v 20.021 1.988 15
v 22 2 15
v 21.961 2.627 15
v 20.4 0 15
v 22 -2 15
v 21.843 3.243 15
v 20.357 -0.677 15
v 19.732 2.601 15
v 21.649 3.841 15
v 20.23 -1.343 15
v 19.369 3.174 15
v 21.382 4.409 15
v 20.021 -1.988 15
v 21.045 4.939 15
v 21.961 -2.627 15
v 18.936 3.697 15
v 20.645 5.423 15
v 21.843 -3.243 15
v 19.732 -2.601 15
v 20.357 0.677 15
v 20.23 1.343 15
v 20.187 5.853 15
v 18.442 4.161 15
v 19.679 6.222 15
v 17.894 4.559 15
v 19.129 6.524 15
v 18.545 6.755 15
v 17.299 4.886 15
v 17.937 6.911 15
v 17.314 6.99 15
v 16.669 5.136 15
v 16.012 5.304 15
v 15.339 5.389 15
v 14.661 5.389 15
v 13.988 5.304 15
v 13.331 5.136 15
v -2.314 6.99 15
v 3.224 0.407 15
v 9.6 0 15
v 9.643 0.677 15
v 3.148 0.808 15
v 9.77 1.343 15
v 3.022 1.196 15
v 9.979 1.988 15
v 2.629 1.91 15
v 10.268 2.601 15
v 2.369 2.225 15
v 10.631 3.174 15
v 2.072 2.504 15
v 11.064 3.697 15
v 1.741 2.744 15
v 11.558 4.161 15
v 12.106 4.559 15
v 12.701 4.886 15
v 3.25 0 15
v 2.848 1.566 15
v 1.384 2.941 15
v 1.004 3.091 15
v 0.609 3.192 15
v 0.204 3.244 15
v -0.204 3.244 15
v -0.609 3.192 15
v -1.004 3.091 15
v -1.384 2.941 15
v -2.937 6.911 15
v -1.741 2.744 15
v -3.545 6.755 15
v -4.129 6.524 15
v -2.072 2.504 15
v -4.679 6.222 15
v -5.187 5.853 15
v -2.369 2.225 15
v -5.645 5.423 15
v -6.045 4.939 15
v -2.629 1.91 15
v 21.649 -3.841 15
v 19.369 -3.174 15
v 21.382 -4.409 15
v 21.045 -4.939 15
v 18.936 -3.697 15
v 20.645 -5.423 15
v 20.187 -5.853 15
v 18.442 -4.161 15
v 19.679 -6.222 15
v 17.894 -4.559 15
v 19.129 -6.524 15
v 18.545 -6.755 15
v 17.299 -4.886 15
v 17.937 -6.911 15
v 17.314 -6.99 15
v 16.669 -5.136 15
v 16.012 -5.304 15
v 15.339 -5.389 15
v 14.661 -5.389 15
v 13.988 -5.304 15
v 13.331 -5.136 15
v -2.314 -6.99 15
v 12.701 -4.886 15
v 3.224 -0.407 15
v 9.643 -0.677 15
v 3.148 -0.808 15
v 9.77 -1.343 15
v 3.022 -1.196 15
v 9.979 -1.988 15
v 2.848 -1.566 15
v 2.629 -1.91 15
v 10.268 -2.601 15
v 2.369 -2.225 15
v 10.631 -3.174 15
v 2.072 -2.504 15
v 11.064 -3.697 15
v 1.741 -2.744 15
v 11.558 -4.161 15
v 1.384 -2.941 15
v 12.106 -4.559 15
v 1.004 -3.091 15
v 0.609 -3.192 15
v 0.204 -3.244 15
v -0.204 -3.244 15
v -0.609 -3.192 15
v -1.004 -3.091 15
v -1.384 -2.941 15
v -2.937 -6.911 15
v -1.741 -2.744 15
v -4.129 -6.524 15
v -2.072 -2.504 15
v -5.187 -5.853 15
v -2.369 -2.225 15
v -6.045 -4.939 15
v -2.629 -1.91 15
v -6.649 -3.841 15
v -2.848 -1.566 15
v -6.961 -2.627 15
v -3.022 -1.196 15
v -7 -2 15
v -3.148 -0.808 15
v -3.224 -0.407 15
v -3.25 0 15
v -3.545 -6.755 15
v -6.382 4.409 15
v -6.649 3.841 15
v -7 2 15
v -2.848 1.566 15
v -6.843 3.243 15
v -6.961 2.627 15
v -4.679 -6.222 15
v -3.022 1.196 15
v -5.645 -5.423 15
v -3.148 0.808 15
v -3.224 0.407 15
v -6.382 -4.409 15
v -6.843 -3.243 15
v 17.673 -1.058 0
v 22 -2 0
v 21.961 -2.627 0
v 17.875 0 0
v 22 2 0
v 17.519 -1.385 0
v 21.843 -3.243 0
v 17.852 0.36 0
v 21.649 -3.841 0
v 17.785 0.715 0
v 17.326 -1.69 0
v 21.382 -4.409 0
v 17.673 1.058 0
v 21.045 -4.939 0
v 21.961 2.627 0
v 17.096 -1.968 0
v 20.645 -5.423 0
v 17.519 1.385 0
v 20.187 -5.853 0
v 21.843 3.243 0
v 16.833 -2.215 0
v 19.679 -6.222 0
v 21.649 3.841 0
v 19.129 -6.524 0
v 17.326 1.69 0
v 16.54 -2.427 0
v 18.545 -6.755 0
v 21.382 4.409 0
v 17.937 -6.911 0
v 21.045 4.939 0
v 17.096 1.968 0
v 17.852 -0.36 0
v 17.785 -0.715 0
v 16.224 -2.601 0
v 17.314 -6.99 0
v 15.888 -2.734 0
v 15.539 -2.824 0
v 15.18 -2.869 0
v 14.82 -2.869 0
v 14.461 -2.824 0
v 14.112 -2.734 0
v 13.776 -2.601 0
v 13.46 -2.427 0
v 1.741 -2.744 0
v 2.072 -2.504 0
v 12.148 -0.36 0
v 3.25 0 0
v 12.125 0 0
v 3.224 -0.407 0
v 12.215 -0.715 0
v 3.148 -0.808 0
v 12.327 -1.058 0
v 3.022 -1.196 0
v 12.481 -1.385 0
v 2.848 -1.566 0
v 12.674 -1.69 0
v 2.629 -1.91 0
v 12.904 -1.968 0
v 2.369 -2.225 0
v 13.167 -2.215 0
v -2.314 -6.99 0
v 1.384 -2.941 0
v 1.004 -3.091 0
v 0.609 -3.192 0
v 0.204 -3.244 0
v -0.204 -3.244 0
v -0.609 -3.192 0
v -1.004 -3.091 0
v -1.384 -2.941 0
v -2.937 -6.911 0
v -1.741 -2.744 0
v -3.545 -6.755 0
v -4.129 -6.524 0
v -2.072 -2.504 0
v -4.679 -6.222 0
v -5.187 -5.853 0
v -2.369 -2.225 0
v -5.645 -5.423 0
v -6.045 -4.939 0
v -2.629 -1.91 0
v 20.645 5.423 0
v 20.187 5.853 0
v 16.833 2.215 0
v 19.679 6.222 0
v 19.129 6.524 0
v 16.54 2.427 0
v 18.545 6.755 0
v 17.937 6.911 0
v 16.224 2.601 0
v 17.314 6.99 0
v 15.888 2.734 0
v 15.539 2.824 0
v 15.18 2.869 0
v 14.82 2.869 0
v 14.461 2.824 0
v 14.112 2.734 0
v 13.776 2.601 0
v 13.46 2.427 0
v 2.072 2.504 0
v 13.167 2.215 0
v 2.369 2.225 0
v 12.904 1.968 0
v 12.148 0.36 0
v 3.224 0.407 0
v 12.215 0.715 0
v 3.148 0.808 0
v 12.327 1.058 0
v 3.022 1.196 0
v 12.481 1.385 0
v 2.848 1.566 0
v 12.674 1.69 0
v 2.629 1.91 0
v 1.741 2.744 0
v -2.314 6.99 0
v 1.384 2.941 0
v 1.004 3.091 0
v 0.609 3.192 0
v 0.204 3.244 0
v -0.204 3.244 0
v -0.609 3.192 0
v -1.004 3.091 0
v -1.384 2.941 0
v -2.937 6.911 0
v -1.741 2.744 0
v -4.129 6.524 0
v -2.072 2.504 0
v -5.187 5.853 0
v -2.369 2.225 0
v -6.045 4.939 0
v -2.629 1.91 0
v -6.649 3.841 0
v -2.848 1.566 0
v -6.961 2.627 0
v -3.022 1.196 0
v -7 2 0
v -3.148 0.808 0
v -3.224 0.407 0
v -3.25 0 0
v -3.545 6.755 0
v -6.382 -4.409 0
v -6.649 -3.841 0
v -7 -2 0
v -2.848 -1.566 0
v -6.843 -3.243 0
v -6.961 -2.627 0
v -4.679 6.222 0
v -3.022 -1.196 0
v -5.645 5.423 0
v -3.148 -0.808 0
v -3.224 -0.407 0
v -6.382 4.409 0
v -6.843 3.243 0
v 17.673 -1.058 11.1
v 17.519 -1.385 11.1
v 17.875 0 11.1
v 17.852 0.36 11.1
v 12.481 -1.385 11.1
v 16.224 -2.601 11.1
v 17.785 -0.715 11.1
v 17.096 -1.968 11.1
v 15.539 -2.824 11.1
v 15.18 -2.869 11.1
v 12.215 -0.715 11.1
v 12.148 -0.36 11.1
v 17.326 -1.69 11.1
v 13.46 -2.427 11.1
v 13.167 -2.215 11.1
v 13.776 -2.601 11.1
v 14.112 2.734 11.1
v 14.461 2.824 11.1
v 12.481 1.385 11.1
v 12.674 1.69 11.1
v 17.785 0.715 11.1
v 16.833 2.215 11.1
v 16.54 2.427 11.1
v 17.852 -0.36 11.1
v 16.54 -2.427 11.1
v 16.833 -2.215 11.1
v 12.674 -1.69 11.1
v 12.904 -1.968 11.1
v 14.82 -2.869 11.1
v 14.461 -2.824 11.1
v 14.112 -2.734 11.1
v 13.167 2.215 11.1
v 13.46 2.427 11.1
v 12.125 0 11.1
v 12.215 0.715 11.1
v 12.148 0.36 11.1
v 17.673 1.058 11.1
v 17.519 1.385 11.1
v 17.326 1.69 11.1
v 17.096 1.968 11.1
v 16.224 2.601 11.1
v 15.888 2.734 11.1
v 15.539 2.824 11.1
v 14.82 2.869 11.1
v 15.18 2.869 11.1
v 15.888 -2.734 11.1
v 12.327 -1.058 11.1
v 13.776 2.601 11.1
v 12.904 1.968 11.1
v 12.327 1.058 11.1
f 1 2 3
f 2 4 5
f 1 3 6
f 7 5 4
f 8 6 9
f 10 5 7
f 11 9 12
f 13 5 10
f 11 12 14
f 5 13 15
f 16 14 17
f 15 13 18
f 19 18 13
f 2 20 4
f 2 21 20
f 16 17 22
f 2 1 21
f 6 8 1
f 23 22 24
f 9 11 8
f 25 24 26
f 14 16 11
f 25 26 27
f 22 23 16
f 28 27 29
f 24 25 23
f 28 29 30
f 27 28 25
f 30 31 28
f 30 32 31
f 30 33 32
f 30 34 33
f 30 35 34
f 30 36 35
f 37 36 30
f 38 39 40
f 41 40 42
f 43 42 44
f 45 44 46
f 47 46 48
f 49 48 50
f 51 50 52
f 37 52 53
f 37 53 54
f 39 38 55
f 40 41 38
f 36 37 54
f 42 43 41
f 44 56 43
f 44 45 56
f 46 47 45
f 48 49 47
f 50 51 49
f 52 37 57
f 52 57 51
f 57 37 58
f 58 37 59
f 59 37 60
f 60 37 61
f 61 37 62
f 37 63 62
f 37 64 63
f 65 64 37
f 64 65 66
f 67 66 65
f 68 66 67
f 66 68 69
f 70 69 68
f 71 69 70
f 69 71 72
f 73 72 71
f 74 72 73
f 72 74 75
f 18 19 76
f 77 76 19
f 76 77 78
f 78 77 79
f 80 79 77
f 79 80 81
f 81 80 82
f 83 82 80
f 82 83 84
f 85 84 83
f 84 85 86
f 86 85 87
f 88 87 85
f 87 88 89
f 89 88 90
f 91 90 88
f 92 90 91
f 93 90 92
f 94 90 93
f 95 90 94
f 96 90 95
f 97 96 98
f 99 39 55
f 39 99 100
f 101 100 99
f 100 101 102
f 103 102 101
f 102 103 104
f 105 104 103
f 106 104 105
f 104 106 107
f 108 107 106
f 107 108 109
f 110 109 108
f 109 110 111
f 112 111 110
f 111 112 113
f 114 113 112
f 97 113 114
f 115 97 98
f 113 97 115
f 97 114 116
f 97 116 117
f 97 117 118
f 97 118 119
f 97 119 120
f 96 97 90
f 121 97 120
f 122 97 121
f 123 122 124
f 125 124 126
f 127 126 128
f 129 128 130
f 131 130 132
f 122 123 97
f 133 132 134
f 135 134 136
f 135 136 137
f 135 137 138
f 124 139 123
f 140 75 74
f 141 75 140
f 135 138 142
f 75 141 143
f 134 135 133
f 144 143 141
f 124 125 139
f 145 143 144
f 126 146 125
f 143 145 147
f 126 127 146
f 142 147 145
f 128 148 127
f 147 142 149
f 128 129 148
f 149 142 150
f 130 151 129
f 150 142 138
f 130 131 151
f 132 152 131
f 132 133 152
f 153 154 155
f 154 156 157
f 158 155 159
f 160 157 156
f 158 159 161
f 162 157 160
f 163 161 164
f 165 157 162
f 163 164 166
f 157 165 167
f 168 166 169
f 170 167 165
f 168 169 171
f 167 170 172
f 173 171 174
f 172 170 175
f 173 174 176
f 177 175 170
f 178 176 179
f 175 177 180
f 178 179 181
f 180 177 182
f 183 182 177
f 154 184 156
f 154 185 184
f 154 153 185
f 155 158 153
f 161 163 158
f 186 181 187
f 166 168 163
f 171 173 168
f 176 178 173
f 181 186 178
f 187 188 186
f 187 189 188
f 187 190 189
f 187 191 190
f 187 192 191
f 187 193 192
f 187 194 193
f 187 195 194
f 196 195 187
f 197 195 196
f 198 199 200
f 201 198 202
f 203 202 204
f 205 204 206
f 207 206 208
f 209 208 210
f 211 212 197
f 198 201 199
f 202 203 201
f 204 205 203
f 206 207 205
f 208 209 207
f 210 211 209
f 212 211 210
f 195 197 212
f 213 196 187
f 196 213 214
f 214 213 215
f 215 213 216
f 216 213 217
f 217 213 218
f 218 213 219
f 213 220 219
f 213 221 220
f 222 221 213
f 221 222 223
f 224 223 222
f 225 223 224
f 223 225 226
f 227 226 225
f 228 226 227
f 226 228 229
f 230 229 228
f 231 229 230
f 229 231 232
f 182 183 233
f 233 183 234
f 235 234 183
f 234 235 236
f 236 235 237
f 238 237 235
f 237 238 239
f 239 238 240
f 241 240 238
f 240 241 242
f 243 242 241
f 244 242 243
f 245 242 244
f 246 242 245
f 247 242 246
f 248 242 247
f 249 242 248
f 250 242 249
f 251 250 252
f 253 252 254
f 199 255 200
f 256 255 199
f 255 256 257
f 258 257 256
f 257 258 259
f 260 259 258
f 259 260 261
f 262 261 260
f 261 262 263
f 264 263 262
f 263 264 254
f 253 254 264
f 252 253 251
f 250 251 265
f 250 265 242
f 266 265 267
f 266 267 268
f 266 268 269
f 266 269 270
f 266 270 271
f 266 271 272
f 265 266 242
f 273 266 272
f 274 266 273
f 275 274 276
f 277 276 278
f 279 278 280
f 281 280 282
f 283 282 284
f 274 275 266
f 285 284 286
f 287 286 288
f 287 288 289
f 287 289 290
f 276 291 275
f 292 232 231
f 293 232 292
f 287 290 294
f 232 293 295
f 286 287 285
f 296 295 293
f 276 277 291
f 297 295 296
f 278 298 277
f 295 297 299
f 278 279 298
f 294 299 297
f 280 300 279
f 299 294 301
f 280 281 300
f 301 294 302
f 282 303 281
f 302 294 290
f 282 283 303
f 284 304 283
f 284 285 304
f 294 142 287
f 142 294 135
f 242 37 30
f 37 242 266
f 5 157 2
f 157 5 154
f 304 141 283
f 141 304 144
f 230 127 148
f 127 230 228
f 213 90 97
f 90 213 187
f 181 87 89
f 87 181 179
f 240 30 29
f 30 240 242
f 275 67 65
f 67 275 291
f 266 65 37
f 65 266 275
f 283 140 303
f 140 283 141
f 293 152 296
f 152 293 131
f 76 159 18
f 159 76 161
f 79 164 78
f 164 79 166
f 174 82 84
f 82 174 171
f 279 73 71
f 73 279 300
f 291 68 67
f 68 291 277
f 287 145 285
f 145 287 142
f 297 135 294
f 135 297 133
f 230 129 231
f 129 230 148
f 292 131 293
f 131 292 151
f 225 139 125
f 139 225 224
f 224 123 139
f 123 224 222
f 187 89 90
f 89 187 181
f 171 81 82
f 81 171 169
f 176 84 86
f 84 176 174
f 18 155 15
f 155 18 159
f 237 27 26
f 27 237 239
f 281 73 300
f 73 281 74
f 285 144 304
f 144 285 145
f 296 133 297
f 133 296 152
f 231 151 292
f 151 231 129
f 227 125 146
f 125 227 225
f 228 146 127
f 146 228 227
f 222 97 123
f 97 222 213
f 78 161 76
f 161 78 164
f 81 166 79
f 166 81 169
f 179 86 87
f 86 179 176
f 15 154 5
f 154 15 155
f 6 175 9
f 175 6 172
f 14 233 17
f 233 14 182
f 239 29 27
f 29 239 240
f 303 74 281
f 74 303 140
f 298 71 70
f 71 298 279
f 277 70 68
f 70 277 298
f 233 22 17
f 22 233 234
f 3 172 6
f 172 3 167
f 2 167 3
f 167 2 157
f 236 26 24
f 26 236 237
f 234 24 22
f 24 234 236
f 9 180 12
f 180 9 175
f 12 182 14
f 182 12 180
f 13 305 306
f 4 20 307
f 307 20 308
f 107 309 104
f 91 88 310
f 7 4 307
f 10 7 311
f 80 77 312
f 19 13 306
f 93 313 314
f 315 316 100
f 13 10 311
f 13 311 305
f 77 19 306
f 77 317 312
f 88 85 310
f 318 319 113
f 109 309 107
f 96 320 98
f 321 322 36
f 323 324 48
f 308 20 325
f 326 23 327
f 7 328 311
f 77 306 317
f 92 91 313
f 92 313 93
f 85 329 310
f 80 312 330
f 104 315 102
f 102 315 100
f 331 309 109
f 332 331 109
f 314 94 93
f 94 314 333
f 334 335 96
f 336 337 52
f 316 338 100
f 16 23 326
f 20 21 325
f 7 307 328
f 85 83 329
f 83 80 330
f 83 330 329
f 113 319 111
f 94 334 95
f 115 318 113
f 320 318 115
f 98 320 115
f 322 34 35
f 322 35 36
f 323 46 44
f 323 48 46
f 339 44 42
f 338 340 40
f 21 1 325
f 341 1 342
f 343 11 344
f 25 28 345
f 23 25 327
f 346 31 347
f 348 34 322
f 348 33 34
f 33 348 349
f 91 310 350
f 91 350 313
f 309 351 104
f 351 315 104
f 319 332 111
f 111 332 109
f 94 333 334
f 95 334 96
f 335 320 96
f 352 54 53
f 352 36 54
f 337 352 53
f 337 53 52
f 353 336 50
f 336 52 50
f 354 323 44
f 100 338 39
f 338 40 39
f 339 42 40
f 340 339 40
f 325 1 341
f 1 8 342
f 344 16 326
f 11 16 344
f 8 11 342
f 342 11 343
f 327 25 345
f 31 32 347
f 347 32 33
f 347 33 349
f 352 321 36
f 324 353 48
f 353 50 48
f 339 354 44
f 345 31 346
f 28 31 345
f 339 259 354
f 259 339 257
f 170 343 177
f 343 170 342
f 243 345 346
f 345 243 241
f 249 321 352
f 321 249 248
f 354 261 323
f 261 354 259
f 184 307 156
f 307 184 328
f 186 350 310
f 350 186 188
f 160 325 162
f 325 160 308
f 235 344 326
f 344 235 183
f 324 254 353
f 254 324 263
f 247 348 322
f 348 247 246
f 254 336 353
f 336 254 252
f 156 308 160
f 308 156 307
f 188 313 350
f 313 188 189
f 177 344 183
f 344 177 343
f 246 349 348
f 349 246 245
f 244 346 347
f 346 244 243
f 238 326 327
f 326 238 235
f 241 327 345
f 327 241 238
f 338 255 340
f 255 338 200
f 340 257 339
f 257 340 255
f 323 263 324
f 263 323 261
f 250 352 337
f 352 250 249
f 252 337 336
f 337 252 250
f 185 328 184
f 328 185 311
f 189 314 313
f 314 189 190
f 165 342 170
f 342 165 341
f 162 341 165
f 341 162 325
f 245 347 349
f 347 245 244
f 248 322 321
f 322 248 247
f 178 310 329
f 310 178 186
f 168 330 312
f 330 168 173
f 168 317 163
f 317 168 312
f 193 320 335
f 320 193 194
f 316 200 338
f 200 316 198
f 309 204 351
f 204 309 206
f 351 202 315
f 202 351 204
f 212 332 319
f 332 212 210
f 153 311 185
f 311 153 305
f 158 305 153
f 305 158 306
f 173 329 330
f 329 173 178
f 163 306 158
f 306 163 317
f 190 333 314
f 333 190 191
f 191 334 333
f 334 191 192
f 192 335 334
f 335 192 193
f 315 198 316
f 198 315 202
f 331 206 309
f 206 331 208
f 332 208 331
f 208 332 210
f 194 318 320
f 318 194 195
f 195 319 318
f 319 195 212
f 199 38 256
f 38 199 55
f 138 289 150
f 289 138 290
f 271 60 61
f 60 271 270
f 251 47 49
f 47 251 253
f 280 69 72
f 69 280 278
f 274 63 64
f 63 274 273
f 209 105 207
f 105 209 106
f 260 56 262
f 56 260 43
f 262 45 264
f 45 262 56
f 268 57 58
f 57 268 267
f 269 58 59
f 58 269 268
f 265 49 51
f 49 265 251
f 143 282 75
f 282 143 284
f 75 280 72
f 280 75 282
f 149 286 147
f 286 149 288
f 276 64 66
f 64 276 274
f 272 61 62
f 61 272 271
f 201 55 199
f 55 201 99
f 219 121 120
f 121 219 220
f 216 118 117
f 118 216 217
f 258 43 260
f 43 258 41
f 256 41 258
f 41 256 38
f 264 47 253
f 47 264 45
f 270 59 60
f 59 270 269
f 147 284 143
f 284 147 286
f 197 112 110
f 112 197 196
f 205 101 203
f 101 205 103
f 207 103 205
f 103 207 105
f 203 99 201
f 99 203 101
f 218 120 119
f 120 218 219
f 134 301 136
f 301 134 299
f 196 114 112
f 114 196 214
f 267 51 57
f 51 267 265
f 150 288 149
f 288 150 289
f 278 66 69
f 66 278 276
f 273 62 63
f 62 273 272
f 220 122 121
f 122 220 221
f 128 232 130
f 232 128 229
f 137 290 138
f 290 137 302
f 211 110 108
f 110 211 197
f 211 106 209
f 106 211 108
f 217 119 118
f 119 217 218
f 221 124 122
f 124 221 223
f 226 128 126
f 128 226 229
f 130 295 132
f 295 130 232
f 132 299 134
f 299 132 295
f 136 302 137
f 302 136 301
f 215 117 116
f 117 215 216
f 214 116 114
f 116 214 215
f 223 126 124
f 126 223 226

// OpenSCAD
$fn = 50;


difference() {
	union() {
		cylinder(h = 15, r = 7.0000000000);
		translate(v = [7.5000000000, 0.0000000000, 0]) {
			hull() {
				translate(v = [-9.5000000000, 2.0000000000, 0]) {
					cylinder(h = 15, r = 5);
				}
				translate(v = [9.5000000000, 2.0000000000, 0]) {
					cylinder(h = 15, r = 5);
				}
				translate(v = [-9.5000000000, -2.0000000000, 0]) {
					cylinder(h = 15, r = 5);
				}
				translate(v = [9.5000000000, -2.0000000000, 0]) {
					cylinder(h = 15, r = 5);
				}
			}
		}
		translate(v = [7.5000000000, 0.0000000000, 0]) {
			hull() {
				translate(v = [-9.5000000000, 2.0000000000, 0]) {
					cylinder(h = 15, r = 5);
				}
				translate(v = [9.5000000000, 2.0000000000, 0]) {
					cylinder(h = 15, r = 5);
				}
				translate(v = [-9.5000000000, -2.0000000000, 0]) {
					cylinder(h = 15, r = 5);
				}
				translate(v = [9.5000000000, -2.0000000000, 0]) {
					cylinder(h = 15, r = 5);
				}
			}
		}
	}
	union() {
		translate(v = [15.0000000000, 0.0000000000, 15]) {
			rotate(a = [0, 0, 0]) {
				difference() {
					union() {
						#translate(v = [0, 0, -15.0000000000]) {
							cylinder(h = 15, r = 2.6000000000);
						}
						#translate(v = [0, 0, -3.9000000000]) {
							cylinder(h = 3.9000000000, r1 = 2.8750000000, r2 = 5.4000000000);
						}
						#translate(v = [0, 0, -15.0000000000]) {
							cylinder(h = 15, r = 2.8750000000);
						}
						#translate(v = [0, 0, -15.0000000000]) {
							cylinder(h = 15, r = 2.6000000000);
						}
					}
					union();
				}
			}
		}
		translate(v = [15.0000000000, 0.0000000000, 15]) {
			rotate(a = [0, 0, 0]) {
				difference() {
					union() {
						#translate(v = [0, 0, -15.0000000000]) {
							cylinder(h = 15, r = 2.6000000000);
						}
						#translate(v = [0, 0, -3.9000000000]) {
							cylinder(h = 3.9000000000, r1 = 2.8750000000, r2 = 5.4000000000);
						}
						#translate(v = [0, 0, -15.0000000000]) {
							cylinder(h = 15, r = 2.8750000000);
						}
						#translate(v = [0, 0, -15.0000000000]) {
							cylinder(h = 15, r = 2.6000000000);
						}
					}
					union();
				}
			}
		}
		translate(v = [0, 0, -100]) {
			cylinder(h = 200, r = 3.2500000000);
		}
		translate(v = [0, 0, -100]) {
			cylinder(h = 200, r = 1.8000000000);
		}
	}
}
